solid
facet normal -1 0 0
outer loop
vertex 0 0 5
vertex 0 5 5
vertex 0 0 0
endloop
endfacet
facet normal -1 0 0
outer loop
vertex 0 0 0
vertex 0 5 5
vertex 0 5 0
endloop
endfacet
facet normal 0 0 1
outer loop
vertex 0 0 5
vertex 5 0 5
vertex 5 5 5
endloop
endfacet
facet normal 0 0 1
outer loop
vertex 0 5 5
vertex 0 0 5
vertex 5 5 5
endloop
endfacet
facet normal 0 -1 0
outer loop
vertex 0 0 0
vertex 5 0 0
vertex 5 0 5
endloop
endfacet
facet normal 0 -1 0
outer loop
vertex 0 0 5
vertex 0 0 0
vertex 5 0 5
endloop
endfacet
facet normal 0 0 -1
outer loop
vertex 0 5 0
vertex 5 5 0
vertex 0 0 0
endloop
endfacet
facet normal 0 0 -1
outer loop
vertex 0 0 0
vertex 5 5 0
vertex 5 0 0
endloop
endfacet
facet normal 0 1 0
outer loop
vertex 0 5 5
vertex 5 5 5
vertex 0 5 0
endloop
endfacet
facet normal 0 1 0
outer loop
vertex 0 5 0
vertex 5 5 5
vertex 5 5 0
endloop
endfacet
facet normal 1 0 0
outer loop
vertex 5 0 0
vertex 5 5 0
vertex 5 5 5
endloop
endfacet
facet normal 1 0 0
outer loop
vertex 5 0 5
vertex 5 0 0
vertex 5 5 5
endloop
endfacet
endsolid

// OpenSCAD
/*
 * OpenSCAD Workshop Examples
 * Copyright (c) 2013 Anar Software LLC. < http://anars.com >
 *
 * This program is free software: you can redistribute it and/or modify it under
 * the terms of the GNU General Public License as published by the Free Software
 * Foundation, either version 3 of the License, or (at your option) any later
 * version.
 *
 * This program is distributed in the hope that it will be useful, but WITHOUT
 * ANY WARRANTY; without even the implied warranty of MERCHANTABILITY or FITNESS
 * FOR A PARTICULAR PURPOSE. See the GNU General Public License for more details.
 *
 * You should have received a copy of the GNU General Public License along with
 * this program. If not, see < http://www.gnu.org/licenses/ >
 *
 */
/*

Creates a cube in the first octant.

Parameters :

	cube(size = x);

*/

cube(size = 5);
